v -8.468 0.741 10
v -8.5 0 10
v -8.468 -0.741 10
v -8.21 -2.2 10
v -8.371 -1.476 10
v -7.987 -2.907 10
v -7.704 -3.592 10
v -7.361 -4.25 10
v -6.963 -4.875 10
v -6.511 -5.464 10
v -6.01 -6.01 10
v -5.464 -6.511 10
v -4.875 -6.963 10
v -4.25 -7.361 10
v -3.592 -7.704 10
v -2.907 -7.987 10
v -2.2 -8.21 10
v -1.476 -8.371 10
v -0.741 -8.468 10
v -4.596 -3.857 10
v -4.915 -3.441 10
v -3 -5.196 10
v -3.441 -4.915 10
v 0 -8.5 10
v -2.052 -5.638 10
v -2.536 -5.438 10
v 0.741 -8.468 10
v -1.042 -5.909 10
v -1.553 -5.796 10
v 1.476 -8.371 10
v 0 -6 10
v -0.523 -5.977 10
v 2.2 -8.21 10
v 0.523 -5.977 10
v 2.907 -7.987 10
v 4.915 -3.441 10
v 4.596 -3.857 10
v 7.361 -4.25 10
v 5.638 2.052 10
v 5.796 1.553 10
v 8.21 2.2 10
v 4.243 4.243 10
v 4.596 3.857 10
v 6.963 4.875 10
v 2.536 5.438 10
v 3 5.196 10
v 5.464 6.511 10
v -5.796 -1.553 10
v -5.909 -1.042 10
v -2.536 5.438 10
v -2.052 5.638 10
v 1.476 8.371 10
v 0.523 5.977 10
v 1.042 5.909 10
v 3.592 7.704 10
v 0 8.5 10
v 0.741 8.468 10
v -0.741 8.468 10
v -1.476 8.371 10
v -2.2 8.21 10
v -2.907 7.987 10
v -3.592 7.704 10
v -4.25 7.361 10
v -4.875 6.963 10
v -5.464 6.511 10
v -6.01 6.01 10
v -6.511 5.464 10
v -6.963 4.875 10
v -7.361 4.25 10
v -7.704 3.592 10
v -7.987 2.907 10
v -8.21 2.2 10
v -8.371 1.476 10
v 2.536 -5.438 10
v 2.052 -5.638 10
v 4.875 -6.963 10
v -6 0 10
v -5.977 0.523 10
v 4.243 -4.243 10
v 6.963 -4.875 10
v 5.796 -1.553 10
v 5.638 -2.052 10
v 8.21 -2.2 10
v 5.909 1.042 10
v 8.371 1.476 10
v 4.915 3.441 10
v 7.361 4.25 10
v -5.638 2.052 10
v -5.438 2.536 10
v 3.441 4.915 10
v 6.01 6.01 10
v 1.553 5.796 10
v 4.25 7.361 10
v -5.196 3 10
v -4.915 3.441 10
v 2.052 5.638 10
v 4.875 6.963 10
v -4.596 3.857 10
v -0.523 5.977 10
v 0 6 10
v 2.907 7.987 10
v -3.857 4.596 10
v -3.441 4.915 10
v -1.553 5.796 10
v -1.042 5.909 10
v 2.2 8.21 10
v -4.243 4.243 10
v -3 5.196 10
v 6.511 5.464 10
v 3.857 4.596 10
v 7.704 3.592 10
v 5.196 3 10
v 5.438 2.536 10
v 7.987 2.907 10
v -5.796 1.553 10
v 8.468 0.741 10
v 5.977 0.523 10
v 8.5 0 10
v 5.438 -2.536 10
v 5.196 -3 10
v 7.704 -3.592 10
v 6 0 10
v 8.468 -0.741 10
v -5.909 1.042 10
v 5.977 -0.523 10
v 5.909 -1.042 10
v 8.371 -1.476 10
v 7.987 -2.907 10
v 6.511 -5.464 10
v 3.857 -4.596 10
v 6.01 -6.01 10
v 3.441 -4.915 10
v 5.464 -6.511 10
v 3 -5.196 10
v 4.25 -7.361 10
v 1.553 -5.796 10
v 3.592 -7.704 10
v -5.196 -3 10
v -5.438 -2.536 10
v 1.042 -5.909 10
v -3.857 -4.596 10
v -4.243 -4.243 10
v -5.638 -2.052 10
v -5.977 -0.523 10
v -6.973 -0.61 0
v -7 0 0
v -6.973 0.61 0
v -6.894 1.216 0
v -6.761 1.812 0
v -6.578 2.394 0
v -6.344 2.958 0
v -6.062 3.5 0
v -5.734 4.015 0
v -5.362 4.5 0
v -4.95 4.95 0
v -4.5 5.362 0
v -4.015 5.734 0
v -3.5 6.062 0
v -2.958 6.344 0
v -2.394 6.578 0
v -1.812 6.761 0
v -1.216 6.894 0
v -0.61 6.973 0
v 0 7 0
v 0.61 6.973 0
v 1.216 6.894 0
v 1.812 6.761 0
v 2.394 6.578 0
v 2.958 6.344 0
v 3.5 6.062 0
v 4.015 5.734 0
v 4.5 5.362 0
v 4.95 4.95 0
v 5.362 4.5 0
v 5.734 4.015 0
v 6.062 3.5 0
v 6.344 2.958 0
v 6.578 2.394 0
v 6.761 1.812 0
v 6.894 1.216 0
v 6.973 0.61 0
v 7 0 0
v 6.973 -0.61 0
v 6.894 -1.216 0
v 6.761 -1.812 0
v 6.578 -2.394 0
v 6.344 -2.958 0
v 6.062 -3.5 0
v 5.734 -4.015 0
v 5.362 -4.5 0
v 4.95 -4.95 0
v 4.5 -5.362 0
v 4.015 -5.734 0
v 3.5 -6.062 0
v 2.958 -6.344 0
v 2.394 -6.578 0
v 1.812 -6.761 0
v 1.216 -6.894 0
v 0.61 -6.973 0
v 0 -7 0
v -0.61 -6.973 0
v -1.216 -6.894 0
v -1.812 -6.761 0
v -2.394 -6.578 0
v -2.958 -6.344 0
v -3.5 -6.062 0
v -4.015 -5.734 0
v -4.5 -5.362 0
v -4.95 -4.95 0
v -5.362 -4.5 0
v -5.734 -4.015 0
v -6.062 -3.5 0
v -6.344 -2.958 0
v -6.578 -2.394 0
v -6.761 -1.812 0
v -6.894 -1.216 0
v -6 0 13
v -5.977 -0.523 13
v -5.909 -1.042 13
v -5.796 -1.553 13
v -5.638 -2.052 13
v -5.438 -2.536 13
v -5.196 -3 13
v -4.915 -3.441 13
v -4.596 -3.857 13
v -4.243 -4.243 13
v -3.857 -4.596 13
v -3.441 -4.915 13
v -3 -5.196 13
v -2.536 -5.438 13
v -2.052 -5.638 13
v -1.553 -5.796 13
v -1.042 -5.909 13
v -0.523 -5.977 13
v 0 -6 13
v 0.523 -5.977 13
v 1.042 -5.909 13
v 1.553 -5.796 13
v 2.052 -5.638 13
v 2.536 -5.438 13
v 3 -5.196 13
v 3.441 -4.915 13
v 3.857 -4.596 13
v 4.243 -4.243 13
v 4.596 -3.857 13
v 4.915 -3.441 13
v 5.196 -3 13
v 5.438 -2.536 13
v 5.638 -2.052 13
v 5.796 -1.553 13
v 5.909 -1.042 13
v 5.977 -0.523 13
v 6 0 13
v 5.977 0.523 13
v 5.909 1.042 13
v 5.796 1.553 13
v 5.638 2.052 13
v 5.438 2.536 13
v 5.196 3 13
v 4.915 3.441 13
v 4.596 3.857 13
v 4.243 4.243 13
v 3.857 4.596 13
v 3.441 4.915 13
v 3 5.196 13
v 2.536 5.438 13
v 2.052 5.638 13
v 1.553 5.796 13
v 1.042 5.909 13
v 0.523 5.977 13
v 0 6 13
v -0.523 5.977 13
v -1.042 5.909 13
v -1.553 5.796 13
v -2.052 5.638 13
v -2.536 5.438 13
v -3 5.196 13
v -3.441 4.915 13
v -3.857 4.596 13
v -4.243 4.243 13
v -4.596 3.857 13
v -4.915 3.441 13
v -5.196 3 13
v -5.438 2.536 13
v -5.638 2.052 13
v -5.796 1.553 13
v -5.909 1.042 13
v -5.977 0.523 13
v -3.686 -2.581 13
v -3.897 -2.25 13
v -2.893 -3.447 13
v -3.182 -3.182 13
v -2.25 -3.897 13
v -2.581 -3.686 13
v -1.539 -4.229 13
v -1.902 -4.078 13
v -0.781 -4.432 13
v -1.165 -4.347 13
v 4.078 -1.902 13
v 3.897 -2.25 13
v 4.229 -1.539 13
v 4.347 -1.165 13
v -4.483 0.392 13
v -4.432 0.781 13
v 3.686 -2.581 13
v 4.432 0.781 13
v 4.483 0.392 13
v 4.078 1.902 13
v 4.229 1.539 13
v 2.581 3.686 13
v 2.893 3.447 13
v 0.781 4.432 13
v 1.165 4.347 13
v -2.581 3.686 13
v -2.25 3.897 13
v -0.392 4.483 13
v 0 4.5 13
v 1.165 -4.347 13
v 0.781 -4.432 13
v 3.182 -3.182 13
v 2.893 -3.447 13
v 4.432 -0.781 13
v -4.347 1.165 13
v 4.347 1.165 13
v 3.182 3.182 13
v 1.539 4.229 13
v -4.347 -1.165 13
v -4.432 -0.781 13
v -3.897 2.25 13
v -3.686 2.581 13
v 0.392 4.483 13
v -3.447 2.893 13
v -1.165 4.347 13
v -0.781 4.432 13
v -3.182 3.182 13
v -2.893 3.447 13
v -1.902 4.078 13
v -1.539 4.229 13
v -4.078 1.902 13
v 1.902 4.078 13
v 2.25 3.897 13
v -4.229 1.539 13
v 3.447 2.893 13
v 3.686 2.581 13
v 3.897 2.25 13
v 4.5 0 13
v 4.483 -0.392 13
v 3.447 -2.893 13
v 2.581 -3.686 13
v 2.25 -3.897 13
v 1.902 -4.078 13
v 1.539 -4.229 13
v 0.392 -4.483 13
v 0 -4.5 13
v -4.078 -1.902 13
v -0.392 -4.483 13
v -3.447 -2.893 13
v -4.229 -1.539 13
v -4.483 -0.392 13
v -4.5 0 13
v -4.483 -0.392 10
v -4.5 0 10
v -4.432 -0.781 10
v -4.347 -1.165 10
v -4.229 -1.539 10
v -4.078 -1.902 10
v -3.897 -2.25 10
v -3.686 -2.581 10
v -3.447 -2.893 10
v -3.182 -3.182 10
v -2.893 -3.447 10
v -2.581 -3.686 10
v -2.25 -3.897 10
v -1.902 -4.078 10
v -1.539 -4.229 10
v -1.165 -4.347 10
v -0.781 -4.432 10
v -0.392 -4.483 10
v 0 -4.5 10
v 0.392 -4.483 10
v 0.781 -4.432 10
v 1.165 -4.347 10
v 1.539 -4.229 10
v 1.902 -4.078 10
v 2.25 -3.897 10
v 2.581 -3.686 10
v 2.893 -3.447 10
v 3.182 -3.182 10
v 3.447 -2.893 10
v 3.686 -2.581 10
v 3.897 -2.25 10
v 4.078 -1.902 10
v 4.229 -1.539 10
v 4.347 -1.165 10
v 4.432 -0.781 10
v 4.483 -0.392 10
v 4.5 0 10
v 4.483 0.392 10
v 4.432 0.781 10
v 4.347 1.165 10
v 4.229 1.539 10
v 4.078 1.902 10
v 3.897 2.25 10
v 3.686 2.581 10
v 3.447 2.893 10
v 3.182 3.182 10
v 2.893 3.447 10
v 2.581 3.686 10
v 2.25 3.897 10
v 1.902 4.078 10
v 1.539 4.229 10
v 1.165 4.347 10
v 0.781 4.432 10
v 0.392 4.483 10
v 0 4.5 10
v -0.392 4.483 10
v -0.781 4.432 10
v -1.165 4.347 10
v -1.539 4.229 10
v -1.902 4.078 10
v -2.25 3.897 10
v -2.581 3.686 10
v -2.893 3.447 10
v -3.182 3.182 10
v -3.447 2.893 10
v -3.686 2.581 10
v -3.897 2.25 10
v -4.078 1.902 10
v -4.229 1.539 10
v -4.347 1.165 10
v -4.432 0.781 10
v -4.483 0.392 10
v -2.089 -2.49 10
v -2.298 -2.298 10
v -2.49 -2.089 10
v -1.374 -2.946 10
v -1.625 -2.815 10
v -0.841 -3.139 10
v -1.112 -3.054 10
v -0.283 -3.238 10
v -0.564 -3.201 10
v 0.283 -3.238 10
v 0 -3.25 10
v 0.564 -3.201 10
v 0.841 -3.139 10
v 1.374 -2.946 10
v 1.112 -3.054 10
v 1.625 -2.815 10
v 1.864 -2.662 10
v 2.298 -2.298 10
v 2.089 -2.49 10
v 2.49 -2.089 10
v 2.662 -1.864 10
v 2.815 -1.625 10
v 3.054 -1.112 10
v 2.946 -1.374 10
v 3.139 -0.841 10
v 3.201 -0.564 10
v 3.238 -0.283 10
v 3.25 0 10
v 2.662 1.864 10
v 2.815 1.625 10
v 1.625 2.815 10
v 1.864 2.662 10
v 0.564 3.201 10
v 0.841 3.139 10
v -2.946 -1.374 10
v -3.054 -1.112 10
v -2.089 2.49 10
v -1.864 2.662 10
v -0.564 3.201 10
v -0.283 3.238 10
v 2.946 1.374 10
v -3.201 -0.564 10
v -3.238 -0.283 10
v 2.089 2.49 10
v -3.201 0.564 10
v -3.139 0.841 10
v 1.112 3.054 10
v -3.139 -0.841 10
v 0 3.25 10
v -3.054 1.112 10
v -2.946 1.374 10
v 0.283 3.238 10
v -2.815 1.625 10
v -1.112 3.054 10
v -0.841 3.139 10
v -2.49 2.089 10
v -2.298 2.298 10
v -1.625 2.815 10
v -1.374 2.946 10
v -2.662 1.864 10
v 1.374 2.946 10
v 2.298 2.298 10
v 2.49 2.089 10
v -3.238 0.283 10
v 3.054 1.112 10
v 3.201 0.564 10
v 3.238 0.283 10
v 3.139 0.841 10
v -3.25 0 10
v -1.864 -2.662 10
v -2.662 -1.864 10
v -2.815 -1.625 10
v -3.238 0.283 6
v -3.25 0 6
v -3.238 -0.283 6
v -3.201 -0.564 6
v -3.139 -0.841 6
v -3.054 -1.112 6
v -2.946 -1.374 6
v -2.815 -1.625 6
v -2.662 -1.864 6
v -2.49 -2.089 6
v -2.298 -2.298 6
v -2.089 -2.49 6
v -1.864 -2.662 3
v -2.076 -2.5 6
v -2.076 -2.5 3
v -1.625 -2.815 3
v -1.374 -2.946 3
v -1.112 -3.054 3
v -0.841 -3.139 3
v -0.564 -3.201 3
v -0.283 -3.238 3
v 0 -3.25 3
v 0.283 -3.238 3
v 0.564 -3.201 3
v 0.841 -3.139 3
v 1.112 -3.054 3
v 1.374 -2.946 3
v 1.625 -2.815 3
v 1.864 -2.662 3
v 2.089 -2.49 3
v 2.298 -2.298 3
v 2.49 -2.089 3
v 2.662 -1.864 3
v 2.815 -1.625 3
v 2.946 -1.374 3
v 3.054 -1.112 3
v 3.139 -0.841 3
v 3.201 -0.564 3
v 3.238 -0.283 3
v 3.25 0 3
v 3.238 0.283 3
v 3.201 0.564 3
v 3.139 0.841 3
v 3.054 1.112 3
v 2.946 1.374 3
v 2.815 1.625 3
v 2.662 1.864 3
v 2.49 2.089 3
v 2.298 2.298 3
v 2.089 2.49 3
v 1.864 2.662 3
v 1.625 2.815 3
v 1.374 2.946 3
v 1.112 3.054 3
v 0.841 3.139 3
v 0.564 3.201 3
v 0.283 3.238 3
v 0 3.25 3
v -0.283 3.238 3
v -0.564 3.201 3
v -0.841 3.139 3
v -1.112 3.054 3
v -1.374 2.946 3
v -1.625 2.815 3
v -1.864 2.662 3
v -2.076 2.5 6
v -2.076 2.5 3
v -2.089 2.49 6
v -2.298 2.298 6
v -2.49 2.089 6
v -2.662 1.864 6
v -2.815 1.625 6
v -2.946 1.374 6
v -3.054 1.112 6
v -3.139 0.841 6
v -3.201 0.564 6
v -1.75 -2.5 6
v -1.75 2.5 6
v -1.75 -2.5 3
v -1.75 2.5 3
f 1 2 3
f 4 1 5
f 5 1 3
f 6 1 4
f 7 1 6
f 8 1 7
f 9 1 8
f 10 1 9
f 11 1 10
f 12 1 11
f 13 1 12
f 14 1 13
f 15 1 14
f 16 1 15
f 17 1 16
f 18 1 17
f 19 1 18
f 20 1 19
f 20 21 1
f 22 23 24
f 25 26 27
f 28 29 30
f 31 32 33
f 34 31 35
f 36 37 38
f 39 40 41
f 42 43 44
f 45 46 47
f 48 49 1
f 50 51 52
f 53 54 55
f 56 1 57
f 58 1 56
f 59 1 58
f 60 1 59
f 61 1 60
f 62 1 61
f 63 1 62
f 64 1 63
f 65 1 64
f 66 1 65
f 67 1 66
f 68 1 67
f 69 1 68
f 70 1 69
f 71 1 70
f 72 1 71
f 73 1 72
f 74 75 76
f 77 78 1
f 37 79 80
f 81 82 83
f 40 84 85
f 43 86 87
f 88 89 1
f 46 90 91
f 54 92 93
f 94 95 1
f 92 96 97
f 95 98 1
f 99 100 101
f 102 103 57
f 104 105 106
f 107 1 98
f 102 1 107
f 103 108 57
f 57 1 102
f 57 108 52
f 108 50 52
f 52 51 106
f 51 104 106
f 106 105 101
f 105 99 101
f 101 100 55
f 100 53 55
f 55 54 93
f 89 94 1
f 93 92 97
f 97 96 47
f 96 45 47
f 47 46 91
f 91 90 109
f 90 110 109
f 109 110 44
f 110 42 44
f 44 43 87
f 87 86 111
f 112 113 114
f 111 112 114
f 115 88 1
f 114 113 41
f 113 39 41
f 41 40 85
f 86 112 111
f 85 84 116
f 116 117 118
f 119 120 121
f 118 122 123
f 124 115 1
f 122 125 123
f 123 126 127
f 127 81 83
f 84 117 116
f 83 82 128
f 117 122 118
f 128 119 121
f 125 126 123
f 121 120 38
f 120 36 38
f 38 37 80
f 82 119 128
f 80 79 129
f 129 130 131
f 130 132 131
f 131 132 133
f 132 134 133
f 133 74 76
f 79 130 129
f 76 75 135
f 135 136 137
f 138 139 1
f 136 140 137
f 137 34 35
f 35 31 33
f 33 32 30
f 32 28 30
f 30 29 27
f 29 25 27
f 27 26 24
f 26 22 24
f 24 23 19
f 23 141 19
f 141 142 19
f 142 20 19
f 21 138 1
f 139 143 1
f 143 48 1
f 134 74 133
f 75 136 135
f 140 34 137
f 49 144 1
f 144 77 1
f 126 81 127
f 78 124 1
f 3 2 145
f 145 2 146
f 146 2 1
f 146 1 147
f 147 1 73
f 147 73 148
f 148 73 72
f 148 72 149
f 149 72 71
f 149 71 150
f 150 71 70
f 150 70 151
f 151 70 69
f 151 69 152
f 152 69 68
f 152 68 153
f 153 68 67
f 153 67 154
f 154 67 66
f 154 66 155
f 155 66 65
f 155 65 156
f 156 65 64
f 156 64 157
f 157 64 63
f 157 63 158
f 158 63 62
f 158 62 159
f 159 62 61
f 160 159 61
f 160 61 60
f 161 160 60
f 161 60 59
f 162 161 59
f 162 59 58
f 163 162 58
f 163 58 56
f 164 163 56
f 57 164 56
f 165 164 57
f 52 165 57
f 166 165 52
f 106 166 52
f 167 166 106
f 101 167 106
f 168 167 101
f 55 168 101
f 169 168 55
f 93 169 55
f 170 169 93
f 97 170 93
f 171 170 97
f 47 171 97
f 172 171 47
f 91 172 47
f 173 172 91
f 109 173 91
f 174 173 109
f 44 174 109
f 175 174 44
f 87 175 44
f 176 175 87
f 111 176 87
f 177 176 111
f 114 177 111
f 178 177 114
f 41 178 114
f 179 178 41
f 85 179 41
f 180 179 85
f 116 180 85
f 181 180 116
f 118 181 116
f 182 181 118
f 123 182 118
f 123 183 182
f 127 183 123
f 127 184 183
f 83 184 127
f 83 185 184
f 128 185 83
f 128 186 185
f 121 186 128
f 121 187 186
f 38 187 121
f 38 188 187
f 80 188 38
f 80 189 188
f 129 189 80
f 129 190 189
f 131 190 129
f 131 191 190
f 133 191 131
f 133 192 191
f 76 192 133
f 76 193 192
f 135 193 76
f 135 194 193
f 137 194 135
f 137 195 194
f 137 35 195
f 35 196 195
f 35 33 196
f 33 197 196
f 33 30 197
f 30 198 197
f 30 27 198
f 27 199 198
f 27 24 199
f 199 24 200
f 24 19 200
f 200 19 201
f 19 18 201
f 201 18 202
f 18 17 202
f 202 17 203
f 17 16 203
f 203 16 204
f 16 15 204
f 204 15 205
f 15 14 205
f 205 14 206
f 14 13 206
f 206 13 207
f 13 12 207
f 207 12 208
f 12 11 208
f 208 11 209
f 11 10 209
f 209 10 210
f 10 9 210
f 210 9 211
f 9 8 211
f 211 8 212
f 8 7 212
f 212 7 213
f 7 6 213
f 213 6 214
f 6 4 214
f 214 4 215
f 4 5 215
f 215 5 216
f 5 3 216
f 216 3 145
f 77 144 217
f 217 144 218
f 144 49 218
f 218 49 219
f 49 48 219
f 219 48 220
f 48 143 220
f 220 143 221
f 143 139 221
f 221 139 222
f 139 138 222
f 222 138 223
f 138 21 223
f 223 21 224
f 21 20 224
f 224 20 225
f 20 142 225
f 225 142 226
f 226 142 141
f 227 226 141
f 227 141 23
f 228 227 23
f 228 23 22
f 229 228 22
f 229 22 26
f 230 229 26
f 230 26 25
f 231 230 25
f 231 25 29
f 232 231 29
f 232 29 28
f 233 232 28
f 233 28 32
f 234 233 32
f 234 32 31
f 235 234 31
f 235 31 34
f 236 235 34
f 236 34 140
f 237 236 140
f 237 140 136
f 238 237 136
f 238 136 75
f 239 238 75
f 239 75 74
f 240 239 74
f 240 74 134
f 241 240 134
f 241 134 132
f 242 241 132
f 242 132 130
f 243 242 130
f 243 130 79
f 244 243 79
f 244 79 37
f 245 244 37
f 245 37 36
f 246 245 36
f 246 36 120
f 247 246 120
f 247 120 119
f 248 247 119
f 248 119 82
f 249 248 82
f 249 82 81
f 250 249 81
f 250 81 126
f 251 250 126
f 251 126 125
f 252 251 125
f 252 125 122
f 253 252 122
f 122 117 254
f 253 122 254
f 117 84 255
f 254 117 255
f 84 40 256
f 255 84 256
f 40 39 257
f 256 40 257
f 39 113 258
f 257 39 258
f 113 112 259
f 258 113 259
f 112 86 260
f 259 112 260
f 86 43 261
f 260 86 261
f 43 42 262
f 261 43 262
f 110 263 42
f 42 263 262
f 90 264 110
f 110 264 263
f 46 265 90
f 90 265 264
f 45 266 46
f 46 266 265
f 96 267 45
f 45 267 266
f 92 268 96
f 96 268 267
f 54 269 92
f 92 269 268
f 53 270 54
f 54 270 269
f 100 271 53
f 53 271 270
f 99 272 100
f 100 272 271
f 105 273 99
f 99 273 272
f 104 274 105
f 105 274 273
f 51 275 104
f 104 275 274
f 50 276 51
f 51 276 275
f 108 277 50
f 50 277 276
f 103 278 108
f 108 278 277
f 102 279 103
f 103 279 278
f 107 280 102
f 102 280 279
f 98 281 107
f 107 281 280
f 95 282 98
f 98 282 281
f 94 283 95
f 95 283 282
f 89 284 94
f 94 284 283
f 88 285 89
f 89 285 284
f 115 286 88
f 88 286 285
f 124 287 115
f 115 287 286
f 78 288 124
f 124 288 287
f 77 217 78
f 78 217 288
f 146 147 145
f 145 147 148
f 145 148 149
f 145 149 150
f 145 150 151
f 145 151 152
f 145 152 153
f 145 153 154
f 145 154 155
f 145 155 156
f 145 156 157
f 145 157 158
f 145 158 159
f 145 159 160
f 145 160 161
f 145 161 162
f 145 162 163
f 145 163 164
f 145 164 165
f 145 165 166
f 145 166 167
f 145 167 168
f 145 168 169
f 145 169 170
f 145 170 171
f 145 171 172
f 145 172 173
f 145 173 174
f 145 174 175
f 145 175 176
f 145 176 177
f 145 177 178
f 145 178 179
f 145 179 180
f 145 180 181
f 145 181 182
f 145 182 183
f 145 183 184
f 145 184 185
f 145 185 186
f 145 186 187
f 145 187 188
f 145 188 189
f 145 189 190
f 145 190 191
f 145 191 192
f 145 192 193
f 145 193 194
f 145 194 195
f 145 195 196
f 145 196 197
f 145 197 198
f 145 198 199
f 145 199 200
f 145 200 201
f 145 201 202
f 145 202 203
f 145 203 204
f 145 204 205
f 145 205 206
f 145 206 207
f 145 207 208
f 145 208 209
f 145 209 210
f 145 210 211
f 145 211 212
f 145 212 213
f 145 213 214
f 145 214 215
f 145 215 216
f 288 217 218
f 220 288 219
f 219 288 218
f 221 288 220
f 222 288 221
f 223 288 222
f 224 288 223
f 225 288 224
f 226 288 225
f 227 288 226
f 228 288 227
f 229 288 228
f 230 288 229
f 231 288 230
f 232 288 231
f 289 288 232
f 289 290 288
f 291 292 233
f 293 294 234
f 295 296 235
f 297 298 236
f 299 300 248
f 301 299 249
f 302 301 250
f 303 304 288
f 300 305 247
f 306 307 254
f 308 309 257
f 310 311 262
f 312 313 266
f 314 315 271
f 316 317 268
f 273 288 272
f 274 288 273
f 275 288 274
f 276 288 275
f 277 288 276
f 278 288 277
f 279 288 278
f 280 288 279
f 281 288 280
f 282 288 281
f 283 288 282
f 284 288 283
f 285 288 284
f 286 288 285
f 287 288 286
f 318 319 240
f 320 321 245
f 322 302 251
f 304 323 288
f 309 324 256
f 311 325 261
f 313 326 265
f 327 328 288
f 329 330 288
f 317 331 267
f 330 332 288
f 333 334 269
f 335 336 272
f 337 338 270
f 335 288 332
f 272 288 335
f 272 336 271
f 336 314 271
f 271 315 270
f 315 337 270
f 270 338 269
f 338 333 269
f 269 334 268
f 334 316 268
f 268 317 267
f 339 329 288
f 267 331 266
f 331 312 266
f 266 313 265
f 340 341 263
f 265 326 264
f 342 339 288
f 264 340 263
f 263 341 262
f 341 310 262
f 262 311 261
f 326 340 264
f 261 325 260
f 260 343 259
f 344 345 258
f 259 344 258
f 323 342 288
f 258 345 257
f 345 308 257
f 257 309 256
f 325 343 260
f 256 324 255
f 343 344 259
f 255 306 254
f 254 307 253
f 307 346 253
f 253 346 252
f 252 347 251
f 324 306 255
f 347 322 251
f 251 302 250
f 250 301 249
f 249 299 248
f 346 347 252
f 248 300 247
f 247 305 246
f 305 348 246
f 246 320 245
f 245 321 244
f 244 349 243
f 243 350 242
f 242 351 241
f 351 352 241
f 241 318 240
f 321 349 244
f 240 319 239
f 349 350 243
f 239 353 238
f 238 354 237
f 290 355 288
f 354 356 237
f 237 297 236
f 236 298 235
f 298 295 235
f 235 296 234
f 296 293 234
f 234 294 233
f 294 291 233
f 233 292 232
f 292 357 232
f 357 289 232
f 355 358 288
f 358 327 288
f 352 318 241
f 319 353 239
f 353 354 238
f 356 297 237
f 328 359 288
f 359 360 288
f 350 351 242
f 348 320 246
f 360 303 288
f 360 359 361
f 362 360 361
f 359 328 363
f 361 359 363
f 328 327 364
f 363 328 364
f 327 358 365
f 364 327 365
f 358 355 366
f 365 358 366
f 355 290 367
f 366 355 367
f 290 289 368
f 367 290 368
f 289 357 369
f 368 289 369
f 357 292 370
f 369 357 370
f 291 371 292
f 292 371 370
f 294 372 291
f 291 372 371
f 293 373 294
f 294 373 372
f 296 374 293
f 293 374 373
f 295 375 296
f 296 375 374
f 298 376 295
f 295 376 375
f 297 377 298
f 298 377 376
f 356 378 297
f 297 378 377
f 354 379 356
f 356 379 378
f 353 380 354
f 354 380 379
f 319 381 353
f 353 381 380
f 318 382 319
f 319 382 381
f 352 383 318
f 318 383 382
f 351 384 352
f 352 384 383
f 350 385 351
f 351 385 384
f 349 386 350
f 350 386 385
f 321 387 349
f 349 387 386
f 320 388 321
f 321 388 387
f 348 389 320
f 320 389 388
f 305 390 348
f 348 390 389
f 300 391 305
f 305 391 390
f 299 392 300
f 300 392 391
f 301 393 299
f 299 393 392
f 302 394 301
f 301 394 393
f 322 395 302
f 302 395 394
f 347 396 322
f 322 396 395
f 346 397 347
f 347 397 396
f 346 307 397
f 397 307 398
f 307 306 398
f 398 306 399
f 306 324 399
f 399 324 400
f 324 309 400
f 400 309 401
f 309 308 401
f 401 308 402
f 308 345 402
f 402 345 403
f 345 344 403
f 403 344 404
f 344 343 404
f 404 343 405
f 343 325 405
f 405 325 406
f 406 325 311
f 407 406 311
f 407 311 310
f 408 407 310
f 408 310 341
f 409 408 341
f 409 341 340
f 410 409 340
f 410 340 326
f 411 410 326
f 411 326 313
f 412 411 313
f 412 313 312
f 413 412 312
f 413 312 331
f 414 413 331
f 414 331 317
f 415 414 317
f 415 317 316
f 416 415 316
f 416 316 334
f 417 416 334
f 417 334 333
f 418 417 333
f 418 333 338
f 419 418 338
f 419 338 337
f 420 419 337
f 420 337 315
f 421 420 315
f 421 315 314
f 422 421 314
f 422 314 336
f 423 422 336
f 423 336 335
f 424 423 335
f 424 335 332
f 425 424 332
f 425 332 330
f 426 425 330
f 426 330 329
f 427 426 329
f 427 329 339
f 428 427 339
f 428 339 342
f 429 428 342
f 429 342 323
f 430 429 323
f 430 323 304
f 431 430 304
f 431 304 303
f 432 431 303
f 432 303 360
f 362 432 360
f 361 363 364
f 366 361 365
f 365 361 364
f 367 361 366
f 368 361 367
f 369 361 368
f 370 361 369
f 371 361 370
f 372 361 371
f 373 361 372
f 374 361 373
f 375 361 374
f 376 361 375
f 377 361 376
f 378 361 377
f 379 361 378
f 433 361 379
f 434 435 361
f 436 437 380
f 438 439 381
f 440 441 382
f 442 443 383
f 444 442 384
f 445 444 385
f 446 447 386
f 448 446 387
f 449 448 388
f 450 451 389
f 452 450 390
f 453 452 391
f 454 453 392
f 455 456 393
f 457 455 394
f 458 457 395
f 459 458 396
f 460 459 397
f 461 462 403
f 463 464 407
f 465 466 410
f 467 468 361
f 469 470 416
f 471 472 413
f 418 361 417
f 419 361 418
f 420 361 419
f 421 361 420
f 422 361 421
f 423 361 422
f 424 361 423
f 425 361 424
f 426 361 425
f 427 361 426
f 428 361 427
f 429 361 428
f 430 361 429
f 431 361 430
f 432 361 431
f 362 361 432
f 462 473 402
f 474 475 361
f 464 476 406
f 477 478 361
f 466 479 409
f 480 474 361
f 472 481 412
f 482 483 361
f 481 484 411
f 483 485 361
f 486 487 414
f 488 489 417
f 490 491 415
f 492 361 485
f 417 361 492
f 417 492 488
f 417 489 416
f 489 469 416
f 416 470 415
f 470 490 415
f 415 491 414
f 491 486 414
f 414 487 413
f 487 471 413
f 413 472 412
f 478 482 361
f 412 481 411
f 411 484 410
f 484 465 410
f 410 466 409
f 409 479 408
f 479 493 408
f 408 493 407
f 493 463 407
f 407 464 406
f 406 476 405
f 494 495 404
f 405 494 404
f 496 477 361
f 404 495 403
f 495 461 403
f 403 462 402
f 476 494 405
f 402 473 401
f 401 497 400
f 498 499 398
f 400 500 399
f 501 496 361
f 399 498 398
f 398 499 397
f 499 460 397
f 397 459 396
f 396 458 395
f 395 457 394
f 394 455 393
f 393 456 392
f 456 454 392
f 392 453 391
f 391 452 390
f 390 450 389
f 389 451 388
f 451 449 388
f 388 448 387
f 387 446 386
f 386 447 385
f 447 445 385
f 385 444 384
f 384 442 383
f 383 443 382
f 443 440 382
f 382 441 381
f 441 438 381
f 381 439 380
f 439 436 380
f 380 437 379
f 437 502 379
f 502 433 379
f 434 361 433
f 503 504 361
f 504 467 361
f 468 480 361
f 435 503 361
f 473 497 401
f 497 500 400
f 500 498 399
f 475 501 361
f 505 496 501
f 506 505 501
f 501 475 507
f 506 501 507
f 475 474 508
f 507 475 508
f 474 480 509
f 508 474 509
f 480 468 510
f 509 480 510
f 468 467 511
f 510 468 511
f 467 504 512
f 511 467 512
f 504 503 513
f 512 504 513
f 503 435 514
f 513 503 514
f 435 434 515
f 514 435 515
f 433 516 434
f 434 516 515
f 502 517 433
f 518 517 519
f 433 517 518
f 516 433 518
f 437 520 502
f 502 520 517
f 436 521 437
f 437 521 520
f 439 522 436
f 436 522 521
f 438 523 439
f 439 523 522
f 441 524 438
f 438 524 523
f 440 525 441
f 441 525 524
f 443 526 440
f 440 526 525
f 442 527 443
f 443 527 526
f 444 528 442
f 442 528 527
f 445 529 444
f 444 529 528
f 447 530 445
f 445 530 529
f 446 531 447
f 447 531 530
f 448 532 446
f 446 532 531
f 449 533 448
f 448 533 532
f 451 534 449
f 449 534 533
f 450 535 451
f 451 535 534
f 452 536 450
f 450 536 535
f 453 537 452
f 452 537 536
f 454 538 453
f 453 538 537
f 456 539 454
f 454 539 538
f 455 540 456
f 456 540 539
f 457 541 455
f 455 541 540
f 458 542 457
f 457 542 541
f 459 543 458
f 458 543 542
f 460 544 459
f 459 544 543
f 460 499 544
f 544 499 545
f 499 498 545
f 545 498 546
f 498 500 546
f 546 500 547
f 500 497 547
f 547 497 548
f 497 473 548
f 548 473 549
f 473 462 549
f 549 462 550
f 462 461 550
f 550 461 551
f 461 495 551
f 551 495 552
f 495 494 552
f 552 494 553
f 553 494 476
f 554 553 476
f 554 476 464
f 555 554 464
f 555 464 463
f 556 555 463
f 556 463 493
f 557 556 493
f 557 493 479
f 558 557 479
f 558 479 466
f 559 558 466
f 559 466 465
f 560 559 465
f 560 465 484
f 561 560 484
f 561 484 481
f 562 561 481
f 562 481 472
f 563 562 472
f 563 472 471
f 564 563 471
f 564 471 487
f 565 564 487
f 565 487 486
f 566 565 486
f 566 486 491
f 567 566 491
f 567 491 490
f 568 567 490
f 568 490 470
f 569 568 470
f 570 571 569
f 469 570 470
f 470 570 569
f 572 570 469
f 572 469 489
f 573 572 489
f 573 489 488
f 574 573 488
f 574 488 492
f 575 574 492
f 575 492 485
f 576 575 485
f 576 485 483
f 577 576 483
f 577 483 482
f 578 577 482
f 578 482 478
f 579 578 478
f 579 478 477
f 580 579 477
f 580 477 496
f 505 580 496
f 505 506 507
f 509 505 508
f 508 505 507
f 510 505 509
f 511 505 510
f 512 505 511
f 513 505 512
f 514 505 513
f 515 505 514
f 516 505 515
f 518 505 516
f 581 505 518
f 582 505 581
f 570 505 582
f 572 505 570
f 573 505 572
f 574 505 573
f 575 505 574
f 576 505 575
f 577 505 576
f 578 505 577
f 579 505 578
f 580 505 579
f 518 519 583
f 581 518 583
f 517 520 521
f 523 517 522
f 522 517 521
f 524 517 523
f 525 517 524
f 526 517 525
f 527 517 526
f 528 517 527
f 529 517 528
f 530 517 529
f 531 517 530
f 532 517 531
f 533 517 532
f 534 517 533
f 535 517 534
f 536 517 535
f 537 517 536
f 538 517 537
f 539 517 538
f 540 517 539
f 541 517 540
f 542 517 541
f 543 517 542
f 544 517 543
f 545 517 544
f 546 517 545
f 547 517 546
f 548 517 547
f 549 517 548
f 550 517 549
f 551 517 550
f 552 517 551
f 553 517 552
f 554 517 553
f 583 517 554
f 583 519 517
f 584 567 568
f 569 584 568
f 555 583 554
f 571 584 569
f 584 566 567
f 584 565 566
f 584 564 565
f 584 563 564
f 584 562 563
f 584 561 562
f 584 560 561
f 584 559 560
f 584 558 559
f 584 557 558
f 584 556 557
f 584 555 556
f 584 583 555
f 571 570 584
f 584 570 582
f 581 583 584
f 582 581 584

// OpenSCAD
$fn=72;
difference()
{
	{  // ++
		union()
		{	
			cylinder( d1=14, d2=17,h=10 );
 			cylinder( d=12, h=13 );
		}
	}
	{  // --
		translate([0,0,3]) cylinder( d=6.5,h=10 );
		translate([0,0,10]) cylinder( d=9,h=3 );	}
}
translate([-3.25,-2.5,0]) cube([1.5,5,6]);
